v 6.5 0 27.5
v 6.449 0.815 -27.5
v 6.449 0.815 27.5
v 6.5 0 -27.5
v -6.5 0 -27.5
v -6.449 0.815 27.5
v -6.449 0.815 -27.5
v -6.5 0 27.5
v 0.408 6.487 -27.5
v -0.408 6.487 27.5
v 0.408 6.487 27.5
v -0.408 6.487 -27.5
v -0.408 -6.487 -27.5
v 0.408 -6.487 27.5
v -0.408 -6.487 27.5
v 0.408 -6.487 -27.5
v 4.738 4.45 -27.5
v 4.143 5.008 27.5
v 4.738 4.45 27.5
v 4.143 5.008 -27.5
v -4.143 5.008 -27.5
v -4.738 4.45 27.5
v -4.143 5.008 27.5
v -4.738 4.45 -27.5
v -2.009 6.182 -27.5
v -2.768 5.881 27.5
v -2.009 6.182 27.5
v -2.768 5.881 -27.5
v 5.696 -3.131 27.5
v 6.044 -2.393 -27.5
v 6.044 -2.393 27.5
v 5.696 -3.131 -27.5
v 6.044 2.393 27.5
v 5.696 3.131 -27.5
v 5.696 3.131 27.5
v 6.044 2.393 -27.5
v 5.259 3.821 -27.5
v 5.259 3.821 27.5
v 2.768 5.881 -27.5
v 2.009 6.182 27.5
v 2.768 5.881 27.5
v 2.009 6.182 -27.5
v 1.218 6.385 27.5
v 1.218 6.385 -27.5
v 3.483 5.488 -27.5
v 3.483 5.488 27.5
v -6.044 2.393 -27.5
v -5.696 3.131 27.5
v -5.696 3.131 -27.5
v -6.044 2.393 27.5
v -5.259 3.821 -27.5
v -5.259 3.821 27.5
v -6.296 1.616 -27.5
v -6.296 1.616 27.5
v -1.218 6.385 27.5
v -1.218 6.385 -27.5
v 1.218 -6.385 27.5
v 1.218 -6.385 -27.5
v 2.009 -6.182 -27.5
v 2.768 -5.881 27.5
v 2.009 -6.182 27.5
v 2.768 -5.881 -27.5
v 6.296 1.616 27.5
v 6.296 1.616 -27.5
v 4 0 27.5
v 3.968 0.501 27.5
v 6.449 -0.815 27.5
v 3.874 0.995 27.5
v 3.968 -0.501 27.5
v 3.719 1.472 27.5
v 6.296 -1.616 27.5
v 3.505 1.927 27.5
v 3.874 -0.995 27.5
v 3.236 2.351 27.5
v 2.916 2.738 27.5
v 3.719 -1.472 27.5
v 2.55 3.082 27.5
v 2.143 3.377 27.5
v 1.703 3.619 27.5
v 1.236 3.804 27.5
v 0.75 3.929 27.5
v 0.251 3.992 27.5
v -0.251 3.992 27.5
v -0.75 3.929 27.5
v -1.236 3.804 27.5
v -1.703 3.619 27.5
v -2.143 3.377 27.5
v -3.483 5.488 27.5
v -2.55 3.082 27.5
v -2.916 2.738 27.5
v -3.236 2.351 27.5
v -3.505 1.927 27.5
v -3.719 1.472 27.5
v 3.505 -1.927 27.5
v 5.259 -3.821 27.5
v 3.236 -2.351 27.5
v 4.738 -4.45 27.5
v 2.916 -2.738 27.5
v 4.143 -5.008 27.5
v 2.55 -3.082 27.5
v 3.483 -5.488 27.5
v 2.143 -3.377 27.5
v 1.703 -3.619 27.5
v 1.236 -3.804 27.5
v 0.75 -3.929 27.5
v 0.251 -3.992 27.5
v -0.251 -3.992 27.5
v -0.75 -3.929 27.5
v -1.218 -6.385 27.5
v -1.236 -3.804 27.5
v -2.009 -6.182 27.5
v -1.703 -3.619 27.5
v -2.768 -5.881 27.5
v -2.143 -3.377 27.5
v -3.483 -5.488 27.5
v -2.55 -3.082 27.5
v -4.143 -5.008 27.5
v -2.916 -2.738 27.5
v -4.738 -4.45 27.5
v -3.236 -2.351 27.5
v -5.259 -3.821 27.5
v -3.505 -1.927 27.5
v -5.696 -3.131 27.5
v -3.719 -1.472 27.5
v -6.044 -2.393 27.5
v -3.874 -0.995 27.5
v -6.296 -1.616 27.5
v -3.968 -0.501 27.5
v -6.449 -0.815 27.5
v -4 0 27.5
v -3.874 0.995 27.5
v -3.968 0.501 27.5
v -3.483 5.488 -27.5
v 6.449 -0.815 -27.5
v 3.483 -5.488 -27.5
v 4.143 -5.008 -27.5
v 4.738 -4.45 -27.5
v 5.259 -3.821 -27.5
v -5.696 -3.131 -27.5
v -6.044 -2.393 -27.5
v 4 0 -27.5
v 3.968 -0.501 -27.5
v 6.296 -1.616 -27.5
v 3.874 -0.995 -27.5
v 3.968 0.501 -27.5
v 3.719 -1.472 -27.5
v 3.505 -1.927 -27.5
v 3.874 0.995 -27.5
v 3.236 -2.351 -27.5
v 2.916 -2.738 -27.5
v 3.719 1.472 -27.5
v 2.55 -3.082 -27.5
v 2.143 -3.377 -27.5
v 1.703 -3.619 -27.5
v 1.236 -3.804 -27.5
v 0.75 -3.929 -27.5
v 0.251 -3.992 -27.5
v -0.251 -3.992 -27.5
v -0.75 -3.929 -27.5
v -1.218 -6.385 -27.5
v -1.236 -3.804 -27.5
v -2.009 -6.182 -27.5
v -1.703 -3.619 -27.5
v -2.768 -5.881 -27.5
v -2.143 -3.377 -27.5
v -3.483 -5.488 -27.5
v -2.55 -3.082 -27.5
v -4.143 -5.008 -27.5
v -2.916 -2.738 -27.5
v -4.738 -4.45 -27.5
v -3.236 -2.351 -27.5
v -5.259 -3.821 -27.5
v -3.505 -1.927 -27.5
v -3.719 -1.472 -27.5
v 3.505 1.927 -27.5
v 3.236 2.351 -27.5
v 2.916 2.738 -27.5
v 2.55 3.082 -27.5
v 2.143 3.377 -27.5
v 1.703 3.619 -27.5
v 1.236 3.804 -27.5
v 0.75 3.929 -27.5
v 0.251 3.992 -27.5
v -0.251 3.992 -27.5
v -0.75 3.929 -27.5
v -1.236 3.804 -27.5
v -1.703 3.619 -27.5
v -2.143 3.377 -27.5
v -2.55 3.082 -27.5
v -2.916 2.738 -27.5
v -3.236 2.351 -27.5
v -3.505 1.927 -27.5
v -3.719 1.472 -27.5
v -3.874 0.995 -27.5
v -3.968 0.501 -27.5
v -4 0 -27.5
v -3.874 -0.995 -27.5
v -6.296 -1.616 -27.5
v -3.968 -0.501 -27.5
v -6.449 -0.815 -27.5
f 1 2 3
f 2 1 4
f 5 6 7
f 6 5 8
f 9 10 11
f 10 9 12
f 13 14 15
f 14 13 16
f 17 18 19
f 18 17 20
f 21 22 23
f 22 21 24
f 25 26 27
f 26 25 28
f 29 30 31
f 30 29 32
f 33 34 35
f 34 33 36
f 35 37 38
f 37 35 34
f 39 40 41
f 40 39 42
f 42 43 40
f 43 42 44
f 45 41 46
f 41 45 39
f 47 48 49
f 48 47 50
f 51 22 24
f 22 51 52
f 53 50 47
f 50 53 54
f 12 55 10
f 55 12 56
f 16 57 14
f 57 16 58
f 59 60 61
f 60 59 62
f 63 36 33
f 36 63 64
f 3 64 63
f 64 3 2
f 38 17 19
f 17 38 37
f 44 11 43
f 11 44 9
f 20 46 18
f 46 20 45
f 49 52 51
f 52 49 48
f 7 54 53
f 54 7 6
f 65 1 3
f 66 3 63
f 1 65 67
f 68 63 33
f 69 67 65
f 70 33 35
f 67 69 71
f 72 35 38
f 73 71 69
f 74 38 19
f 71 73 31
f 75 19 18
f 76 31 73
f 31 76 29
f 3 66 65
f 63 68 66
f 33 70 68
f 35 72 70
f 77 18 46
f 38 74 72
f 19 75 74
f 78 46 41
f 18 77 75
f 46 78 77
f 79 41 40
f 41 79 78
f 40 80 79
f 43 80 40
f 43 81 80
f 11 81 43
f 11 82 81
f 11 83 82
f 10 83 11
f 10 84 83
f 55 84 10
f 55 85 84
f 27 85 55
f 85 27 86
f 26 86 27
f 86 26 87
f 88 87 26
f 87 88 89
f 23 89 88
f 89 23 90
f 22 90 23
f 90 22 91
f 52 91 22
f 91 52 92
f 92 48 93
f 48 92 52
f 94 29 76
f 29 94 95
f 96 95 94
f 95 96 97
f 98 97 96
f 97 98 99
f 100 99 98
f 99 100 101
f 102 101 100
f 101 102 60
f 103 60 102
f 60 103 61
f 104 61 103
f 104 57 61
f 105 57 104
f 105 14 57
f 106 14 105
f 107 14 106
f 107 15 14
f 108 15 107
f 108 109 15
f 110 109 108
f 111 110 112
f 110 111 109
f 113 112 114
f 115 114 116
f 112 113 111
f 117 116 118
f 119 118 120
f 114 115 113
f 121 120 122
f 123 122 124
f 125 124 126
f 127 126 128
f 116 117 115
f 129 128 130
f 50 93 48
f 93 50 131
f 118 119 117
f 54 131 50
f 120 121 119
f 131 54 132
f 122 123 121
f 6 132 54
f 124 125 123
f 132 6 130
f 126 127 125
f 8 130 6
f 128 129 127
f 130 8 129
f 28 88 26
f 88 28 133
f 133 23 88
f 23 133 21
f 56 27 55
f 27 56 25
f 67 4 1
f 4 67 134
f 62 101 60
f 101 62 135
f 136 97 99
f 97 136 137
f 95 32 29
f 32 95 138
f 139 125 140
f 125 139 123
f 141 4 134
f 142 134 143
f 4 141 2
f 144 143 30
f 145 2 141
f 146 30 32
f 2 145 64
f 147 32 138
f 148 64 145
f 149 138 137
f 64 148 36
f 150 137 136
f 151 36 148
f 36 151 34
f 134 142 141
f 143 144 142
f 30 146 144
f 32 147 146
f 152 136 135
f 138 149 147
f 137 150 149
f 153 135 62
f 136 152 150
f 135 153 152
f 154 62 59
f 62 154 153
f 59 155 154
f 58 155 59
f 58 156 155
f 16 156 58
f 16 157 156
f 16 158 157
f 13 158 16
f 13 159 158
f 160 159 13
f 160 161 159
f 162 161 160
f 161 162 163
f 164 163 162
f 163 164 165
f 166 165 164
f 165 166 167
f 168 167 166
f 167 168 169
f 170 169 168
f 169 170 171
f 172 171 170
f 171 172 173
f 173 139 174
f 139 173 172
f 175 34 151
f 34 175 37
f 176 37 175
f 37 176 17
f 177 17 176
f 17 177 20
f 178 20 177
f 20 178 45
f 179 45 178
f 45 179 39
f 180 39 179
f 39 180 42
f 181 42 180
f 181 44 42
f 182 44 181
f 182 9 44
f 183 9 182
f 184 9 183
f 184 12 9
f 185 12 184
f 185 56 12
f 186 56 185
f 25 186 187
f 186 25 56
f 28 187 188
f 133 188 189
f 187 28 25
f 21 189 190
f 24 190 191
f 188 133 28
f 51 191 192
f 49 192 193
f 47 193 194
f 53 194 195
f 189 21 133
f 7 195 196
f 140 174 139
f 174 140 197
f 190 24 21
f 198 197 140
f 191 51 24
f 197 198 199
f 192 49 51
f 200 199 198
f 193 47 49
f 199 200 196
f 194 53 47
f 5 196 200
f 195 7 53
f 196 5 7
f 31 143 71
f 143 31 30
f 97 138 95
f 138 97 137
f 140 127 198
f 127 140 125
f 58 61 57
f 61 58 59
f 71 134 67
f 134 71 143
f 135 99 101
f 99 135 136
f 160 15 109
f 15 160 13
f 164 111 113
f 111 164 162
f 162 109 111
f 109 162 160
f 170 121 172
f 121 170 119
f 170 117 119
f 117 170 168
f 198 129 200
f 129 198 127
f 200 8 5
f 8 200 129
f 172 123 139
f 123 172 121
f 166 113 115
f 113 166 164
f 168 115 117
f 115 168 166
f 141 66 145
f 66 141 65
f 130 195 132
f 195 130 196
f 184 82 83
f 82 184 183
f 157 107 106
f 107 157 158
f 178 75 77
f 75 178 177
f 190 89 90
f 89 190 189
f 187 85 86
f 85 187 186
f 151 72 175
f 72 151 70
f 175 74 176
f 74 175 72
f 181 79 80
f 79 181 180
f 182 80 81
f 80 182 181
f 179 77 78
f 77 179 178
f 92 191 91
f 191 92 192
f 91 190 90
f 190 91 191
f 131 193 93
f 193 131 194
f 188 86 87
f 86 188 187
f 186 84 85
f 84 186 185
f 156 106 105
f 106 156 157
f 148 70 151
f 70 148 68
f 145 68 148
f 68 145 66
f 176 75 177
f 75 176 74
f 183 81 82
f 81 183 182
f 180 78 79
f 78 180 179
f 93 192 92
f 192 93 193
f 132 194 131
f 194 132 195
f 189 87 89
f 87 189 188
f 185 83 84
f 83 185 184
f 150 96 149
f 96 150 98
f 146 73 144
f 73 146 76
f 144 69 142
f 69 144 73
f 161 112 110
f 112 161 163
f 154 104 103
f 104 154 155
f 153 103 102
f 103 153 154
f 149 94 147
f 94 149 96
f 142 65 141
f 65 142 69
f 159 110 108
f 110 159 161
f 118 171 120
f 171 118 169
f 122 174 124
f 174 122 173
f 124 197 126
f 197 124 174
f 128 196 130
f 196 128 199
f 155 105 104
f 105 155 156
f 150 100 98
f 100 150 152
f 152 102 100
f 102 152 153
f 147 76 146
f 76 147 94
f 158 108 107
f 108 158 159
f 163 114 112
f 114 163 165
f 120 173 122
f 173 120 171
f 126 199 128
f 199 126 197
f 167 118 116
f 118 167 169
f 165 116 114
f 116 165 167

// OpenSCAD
$fn = 50;


difference() {
	union() {
		translate(v = [0, 0, -27.5000000000]) {
			cylinder(h = 55, r = 6.5000000000);
		}
	}
	union() {
		translate(v = [0, 0, -100.0000000000]) {
			cylinder(h = 200, r = 4);
		}
	}
}
